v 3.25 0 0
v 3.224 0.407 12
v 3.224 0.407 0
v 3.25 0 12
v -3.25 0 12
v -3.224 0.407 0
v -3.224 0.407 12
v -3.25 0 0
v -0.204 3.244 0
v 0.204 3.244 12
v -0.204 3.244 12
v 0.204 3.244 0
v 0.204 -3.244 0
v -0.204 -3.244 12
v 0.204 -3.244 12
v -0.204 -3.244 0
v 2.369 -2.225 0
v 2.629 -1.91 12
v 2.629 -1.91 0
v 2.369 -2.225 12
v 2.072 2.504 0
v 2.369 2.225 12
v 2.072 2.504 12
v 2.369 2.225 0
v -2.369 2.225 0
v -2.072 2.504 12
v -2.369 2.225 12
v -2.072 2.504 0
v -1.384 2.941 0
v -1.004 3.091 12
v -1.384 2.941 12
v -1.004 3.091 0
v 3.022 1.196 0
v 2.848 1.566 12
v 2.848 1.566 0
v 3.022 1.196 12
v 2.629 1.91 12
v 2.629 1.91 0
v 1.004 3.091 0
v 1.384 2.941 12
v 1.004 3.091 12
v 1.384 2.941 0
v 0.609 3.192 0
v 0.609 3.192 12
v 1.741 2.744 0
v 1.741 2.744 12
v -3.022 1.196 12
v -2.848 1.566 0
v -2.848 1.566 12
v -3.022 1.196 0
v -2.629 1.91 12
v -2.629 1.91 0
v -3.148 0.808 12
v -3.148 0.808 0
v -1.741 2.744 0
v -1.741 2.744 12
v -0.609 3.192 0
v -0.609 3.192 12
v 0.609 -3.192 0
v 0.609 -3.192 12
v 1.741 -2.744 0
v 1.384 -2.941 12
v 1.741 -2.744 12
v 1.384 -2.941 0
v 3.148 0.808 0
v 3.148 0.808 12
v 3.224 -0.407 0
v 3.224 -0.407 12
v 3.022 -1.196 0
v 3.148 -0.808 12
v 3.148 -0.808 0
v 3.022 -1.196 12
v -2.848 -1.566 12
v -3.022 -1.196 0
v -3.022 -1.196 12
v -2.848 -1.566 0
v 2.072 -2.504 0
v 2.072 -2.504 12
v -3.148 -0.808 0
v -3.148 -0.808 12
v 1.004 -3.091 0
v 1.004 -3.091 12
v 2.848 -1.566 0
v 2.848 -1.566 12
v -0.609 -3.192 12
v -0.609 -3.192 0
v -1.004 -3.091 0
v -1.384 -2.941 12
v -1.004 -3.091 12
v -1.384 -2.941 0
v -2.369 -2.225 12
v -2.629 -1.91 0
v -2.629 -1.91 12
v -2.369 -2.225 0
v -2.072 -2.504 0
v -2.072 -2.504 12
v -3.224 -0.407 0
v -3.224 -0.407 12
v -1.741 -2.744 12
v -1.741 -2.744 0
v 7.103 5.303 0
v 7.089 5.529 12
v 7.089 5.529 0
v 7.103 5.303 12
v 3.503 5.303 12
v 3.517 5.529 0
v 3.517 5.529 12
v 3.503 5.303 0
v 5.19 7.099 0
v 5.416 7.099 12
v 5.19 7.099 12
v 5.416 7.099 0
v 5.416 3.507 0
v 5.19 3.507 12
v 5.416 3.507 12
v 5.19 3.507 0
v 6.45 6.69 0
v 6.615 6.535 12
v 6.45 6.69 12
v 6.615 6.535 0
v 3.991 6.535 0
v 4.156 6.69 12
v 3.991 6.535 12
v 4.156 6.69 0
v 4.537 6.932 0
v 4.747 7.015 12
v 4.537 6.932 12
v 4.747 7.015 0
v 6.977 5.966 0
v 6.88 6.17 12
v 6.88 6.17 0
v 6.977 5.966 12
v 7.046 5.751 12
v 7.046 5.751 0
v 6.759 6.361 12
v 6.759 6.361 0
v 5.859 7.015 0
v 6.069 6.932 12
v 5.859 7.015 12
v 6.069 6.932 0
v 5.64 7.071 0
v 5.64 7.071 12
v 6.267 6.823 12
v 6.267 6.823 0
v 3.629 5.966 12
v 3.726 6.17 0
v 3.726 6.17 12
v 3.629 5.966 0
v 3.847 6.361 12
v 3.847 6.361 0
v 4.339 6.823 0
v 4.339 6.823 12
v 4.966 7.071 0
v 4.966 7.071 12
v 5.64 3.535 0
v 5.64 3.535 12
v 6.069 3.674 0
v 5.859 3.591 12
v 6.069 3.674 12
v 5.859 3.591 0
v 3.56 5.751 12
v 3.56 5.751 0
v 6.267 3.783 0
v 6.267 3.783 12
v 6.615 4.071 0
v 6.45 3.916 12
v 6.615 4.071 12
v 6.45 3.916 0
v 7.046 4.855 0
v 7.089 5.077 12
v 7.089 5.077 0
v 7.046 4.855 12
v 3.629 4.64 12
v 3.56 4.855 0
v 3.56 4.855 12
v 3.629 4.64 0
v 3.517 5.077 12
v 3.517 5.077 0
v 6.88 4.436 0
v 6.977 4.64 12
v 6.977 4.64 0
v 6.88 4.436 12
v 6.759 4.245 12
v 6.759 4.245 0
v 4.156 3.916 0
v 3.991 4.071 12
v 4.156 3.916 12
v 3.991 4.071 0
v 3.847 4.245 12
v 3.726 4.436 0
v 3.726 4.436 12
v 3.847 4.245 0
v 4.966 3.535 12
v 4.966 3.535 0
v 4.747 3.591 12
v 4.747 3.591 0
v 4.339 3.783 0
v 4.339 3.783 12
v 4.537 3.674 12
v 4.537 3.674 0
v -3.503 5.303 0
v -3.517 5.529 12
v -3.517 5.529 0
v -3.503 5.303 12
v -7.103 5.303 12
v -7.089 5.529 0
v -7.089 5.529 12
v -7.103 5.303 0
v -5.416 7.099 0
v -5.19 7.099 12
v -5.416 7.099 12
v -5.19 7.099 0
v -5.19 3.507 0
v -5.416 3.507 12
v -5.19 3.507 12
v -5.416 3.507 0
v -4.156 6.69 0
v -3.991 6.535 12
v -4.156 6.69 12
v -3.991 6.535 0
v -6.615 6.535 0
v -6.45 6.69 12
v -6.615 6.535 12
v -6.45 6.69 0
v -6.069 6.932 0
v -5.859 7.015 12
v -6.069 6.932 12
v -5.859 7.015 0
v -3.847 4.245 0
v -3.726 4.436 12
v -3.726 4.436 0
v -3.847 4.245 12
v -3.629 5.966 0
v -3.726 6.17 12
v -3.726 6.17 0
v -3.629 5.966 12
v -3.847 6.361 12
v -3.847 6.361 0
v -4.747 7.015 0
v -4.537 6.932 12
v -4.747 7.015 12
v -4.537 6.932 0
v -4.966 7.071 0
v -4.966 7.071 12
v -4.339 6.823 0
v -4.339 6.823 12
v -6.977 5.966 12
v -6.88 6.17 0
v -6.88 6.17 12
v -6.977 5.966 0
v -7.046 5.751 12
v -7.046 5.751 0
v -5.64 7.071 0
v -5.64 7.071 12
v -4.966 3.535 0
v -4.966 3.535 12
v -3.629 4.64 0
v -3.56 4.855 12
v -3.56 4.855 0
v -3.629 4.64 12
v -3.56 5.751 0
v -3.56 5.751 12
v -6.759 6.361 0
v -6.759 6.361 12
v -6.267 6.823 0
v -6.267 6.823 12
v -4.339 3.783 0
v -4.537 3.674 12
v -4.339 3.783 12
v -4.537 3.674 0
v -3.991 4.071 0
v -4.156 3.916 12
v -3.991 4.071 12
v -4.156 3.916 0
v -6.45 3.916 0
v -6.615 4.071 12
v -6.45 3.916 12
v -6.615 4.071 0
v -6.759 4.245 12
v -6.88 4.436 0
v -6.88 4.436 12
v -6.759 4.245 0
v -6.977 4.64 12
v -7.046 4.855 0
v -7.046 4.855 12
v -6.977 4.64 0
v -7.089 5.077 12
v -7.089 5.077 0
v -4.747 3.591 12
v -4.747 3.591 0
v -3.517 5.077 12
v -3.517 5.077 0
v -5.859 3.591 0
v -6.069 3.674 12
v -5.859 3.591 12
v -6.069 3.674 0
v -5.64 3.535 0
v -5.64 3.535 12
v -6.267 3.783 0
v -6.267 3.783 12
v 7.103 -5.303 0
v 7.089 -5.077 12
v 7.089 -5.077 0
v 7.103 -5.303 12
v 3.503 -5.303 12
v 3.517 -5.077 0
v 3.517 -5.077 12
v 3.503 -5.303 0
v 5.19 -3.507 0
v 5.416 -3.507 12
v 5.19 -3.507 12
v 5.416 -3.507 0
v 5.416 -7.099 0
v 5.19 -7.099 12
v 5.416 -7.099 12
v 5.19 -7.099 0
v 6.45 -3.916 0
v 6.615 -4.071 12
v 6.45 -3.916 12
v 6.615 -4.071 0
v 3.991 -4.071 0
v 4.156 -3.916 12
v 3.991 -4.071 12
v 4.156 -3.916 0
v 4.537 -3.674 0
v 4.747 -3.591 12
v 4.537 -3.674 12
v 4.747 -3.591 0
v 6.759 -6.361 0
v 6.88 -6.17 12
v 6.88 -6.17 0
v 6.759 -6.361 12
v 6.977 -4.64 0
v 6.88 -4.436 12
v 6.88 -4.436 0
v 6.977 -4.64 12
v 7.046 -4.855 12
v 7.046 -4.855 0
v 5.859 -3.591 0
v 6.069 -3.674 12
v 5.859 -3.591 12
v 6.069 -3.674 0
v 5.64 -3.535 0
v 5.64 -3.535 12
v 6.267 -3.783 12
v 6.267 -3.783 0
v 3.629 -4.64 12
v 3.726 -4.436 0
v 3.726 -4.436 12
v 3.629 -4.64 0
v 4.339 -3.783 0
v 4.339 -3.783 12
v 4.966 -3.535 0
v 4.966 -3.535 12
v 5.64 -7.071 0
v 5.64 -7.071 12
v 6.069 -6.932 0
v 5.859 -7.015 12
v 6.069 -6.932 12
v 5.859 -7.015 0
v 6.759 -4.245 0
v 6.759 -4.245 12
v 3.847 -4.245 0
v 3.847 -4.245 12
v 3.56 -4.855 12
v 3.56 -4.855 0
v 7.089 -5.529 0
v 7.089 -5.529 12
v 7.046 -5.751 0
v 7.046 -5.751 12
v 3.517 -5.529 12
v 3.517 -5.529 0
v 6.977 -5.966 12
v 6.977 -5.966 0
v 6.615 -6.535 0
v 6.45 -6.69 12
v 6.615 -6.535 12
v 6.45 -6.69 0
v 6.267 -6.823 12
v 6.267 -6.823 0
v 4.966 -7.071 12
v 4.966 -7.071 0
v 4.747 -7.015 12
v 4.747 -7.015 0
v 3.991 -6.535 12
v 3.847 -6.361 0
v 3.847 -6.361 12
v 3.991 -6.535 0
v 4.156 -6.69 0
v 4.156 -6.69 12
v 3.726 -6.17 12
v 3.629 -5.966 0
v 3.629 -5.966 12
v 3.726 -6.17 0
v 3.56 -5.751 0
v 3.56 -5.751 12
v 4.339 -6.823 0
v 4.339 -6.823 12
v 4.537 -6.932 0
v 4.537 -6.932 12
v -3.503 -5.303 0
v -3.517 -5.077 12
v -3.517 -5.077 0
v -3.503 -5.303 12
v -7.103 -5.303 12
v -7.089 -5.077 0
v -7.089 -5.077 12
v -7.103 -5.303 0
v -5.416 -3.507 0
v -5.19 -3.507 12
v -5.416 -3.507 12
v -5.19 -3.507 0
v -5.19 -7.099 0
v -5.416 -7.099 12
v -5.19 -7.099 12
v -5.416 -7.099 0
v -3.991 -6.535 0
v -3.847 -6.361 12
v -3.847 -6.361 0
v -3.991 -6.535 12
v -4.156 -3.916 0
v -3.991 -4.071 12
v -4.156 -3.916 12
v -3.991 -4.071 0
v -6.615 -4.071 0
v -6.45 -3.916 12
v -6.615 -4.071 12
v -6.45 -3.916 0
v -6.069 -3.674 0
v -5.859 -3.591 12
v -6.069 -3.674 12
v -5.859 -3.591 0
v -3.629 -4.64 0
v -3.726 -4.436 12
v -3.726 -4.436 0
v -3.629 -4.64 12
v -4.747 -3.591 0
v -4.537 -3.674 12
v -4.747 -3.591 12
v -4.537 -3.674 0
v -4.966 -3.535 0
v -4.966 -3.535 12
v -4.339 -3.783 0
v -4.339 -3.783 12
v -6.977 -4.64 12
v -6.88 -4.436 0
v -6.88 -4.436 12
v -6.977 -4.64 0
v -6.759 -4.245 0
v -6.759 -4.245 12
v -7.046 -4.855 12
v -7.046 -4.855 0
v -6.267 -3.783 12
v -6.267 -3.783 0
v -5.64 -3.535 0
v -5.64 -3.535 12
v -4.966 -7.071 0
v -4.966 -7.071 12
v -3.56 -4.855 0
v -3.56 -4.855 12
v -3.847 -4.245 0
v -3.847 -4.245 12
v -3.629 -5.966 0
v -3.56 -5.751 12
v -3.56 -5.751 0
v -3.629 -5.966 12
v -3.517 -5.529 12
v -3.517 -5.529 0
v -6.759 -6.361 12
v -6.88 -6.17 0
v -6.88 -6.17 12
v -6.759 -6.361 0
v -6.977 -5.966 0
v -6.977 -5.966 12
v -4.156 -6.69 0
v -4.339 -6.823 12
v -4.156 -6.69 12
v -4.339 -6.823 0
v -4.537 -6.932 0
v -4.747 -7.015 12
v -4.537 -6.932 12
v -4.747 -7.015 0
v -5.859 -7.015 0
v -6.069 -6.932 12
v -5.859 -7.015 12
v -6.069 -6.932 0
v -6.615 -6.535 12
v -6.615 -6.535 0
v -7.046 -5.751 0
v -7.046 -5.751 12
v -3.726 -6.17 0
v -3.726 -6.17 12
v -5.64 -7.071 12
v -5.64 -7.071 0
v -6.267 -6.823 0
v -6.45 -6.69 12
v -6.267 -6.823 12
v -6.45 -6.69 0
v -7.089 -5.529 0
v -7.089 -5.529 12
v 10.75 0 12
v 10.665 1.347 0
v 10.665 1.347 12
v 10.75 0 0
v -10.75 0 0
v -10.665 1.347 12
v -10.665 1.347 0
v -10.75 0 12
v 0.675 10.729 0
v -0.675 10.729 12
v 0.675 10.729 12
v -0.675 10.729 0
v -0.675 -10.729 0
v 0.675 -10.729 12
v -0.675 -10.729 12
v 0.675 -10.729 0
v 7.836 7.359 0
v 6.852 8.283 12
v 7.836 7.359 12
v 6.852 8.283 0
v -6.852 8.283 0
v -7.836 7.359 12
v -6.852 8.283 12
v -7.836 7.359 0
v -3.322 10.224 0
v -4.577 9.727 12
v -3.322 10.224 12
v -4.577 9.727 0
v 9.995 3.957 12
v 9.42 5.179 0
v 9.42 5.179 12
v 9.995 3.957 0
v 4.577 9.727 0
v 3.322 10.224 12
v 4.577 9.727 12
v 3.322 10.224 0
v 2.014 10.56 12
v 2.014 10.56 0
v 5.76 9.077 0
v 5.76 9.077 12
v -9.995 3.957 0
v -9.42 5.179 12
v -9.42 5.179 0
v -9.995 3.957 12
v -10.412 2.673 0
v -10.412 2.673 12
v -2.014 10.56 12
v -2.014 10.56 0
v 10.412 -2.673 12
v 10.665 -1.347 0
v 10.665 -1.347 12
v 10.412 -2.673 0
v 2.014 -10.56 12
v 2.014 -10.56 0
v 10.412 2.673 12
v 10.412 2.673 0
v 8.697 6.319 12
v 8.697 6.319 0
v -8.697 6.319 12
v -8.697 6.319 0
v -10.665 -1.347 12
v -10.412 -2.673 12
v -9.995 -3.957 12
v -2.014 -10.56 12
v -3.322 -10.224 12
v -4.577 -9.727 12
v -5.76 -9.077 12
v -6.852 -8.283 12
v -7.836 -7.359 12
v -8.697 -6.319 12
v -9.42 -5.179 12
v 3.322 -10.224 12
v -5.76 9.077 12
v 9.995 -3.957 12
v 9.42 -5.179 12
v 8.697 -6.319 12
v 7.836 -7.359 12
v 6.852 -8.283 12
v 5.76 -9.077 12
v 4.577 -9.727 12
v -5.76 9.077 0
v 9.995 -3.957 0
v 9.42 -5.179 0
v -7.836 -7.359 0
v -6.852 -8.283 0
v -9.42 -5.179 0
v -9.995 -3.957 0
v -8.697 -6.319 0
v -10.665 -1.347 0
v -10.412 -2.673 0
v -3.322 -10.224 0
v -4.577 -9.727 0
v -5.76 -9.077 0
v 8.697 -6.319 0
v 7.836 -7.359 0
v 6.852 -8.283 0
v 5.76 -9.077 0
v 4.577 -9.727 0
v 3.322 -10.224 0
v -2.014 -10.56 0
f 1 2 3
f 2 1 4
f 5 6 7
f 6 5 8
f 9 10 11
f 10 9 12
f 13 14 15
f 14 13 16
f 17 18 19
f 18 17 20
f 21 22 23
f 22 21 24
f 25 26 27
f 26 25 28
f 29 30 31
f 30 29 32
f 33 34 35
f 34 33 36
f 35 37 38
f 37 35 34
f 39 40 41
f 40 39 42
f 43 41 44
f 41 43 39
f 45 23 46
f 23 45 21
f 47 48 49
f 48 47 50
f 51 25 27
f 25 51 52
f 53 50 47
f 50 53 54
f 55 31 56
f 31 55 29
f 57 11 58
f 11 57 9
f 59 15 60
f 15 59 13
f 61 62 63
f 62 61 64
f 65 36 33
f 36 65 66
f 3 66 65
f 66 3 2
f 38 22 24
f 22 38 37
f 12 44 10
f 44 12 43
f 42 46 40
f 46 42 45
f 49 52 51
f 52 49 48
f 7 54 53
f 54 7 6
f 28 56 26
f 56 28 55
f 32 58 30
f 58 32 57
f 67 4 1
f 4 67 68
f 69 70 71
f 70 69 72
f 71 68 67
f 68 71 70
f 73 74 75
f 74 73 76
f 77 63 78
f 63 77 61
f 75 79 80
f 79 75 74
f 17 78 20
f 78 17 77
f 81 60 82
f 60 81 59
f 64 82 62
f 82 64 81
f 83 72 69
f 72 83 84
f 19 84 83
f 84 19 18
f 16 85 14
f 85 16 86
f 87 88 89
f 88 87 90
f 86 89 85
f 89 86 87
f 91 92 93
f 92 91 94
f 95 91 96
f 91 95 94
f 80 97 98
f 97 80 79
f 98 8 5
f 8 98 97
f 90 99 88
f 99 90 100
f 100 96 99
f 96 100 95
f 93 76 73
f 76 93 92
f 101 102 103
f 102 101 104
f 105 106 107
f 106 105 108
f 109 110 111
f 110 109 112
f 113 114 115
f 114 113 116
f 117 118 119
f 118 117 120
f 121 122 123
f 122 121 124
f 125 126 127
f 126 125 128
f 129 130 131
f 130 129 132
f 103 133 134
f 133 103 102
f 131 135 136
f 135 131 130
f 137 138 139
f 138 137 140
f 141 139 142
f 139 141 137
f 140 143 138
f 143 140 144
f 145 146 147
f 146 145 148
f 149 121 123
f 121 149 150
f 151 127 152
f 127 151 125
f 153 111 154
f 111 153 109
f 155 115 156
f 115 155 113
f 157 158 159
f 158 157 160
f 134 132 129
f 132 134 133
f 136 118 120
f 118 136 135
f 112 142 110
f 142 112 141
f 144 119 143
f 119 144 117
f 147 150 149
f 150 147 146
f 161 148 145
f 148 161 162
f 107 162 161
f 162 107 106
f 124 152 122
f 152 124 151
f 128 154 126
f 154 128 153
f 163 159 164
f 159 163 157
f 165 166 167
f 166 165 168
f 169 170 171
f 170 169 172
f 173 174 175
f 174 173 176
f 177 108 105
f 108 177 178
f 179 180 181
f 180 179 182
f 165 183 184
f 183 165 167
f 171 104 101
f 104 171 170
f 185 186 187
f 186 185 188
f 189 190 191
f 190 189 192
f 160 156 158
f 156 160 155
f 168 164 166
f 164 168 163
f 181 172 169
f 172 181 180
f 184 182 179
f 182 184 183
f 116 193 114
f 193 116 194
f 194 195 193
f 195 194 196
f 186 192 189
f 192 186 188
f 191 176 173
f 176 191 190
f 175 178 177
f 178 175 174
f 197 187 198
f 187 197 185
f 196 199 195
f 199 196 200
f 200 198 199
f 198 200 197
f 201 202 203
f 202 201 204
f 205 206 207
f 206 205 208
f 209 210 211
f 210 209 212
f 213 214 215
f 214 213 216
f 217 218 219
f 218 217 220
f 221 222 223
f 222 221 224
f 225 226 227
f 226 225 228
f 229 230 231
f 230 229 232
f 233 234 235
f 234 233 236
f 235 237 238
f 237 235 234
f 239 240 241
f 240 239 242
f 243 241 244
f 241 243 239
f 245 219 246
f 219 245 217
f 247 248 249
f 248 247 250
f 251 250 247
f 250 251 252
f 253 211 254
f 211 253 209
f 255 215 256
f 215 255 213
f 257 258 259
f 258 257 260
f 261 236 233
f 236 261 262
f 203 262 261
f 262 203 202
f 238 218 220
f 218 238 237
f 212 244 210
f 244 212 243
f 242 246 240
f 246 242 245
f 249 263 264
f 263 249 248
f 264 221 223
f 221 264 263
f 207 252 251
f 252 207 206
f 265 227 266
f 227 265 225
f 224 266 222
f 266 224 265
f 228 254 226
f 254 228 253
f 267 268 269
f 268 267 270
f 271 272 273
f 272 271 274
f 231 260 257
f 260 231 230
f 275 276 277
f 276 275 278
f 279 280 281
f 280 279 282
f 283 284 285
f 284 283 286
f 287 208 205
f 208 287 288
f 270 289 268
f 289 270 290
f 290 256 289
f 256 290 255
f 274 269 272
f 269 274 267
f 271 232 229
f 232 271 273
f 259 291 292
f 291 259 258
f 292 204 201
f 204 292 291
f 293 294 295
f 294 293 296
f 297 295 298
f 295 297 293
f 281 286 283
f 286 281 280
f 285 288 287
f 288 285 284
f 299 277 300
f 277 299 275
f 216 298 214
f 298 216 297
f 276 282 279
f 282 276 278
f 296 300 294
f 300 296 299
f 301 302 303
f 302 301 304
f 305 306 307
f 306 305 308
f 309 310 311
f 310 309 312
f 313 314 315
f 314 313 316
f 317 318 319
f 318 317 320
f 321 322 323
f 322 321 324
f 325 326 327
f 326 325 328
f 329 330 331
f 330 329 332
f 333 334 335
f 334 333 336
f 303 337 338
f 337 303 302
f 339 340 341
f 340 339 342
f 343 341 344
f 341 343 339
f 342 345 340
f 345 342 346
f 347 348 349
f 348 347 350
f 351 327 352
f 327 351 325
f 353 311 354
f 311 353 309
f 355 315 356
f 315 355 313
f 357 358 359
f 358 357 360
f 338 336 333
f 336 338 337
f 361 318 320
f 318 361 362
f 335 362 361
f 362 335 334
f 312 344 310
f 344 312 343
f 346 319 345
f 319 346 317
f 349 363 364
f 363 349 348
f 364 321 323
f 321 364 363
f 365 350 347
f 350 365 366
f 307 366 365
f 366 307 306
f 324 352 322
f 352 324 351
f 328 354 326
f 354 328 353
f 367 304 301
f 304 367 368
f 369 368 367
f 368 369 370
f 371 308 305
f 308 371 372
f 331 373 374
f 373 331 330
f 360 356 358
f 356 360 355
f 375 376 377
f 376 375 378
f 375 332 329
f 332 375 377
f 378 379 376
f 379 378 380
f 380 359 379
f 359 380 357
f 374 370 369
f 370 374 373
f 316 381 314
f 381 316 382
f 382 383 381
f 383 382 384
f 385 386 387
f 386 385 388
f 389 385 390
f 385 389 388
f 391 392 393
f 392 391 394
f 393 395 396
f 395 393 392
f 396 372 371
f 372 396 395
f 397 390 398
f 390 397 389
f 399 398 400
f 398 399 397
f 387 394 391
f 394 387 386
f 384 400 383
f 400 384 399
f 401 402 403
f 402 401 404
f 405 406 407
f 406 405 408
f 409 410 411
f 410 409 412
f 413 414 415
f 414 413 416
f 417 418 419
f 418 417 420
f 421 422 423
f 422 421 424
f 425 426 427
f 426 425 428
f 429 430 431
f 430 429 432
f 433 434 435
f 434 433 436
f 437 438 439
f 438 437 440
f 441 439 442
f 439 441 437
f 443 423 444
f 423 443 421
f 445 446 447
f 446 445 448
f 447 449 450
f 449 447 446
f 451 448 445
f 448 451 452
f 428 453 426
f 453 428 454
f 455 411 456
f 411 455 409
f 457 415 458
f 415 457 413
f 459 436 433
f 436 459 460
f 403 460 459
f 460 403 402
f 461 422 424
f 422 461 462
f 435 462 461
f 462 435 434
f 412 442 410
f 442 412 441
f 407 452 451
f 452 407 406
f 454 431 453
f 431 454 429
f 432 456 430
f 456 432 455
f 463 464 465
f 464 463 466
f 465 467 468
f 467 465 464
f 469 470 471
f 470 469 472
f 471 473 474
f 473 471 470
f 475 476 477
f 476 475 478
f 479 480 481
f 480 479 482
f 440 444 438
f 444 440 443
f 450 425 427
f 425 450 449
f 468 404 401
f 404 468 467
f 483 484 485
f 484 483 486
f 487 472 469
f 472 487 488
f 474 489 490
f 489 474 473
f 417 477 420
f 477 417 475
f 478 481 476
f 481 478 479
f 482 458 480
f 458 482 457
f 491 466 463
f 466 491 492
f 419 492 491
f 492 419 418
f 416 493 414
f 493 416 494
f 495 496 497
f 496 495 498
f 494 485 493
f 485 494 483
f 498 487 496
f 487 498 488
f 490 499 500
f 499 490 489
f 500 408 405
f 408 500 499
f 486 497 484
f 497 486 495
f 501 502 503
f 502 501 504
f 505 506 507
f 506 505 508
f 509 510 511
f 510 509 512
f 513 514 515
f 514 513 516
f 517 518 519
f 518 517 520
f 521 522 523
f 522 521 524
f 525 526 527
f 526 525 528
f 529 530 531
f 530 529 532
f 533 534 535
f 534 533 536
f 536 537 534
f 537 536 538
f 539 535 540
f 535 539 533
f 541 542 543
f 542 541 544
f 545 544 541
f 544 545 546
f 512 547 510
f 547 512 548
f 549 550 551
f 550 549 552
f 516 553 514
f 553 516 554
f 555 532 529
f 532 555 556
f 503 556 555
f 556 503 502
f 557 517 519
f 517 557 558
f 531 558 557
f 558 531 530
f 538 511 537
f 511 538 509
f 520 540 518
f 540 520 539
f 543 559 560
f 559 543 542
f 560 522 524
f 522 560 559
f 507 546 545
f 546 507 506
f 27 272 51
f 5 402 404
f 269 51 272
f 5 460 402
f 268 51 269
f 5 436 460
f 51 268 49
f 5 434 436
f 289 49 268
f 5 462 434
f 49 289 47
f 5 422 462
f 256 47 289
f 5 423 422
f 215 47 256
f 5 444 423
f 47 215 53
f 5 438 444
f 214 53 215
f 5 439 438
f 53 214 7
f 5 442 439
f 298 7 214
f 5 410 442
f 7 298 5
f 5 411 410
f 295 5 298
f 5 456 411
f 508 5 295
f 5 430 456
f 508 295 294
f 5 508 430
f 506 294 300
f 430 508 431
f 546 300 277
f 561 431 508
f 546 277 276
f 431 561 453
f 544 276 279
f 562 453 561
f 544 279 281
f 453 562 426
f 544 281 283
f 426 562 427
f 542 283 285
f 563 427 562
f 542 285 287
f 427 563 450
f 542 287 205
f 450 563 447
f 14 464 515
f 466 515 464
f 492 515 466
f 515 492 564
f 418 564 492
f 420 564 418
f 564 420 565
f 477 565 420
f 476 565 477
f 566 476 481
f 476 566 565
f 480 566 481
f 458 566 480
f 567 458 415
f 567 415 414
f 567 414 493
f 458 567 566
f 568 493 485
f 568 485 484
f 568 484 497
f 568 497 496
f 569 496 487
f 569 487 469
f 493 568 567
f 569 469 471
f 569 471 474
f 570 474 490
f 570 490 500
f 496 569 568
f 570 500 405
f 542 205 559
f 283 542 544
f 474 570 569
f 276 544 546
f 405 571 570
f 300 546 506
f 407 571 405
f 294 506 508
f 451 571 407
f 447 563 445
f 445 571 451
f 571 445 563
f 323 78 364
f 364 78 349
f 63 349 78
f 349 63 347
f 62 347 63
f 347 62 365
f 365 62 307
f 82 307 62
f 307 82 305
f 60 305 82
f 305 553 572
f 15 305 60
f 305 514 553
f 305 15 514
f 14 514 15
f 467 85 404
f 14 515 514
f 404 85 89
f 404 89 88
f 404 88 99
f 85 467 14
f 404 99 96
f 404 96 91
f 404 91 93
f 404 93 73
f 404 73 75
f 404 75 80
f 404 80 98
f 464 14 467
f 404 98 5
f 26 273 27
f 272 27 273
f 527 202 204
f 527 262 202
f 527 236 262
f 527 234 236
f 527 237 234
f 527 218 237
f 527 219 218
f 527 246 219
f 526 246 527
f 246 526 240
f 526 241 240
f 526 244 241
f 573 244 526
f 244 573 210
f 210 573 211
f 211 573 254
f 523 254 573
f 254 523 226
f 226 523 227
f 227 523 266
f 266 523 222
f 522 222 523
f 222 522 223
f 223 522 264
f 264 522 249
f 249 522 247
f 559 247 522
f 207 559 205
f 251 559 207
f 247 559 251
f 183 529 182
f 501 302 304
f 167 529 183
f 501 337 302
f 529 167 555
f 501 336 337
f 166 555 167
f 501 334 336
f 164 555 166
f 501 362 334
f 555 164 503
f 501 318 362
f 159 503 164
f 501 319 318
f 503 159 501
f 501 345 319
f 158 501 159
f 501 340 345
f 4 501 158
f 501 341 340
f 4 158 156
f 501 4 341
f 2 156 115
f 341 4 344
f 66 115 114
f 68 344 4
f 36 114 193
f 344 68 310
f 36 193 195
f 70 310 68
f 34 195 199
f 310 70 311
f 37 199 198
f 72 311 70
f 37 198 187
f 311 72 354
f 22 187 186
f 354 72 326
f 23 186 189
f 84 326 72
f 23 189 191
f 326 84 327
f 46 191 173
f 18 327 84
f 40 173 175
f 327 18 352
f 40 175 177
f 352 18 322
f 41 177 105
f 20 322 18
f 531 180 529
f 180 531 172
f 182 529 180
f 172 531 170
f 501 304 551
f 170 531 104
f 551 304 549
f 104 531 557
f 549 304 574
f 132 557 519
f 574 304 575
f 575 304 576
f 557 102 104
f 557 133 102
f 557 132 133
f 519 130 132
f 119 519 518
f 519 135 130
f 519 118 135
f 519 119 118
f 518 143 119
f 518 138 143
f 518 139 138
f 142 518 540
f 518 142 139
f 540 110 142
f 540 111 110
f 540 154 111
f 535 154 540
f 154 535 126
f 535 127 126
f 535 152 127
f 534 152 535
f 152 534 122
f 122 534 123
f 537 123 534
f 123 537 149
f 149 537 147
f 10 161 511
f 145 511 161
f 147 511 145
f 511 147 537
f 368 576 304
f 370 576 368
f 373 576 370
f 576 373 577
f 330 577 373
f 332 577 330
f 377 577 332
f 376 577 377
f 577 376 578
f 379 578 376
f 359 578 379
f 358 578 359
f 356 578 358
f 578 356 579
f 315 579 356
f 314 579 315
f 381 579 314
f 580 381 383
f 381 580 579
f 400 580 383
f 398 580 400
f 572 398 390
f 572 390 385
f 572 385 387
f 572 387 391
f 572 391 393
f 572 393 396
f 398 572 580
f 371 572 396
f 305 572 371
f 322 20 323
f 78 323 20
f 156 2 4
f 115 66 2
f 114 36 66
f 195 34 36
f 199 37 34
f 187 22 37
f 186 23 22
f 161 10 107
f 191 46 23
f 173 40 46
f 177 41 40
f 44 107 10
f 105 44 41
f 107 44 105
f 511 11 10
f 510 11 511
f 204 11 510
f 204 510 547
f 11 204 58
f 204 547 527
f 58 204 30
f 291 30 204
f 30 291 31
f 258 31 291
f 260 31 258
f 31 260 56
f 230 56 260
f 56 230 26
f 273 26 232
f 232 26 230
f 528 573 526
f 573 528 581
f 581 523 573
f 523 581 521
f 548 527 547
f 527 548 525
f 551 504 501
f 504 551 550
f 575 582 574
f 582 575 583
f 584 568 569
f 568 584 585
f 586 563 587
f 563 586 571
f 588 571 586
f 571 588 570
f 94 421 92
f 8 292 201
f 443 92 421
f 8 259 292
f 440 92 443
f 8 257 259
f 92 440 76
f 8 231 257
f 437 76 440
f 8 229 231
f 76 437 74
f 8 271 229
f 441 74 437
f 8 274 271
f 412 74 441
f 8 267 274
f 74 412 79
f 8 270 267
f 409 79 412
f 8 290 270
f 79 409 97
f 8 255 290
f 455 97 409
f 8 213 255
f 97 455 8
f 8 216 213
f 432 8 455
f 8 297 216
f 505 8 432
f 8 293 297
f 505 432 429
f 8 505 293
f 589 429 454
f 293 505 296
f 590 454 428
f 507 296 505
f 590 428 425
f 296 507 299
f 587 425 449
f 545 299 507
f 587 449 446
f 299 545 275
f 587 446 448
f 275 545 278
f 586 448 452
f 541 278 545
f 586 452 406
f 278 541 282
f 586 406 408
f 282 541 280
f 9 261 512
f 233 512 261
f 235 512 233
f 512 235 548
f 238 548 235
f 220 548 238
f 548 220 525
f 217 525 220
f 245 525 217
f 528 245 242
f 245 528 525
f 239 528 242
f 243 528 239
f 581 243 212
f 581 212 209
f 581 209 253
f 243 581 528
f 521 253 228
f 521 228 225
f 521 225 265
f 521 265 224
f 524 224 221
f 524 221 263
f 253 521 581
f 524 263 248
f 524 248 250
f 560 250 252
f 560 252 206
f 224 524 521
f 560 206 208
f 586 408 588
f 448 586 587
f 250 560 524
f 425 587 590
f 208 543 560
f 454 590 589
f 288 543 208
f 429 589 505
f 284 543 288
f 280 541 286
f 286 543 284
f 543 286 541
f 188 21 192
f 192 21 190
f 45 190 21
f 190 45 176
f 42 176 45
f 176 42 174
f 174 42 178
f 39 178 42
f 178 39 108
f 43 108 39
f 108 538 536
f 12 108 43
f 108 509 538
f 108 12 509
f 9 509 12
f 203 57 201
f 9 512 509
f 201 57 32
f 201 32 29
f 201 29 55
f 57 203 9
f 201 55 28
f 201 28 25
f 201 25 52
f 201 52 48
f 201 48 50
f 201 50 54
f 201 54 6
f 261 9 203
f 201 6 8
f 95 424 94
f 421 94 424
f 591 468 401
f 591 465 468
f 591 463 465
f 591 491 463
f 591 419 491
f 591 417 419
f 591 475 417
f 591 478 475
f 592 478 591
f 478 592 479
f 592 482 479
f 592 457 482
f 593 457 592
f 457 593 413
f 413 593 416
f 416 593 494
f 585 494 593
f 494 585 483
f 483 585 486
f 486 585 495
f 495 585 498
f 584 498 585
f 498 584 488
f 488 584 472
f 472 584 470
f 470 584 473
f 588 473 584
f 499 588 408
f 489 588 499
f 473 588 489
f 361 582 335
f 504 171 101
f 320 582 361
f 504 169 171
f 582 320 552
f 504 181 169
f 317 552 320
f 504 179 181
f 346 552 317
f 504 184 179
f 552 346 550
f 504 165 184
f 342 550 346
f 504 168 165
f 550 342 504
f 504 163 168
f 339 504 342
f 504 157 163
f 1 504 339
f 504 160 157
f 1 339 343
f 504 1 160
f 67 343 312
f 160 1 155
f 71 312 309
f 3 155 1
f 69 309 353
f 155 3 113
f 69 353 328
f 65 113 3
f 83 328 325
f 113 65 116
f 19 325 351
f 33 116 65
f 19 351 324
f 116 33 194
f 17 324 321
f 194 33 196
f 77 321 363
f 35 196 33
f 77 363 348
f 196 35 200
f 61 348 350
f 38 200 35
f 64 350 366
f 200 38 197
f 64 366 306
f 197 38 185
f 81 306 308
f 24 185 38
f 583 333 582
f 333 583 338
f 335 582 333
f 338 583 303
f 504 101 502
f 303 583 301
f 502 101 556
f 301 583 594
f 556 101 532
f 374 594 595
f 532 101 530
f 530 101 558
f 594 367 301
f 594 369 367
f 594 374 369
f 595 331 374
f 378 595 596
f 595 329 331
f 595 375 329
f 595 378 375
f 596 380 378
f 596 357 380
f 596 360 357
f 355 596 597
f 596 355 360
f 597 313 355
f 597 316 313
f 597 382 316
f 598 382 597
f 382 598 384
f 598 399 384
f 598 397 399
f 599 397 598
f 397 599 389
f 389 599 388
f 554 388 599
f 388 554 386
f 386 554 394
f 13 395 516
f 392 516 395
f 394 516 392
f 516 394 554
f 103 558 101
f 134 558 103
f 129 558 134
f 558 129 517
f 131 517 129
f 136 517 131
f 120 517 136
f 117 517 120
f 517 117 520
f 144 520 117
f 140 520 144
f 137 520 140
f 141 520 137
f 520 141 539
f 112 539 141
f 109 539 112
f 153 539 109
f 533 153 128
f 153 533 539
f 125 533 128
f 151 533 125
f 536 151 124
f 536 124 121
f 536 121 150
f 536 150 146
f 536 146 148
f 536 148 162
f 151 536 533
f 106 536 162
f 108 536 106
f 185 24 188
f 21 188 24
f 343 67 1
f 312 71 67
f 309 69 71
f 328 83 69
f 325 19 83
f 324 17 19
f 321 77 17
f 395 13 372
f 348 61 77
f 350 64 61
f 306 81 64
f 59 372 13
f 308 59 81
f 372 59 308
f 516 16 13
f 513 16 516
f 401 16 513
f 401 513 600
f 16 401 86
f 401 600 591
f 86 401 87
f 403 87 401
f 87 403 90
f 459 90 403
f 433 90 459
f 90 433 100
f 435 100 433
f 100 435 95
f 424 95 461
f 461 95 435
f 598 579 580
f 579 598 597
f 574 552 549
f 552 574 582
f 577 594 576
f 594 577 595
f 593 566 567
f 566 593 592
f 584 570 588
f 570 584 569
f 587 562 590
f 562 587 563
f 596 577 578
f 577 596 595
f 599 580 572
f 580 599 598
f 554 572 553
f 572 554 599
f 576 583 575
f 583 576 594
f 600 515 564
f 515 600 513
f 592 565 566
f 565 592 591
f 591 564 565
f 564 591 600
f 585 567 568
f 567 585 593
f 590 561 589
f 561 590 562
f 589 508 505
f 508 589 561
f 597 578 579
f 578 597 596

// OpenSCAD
$fn = 50;


difference() {
	union() {
		*color(alpha = 1.0000000000, c = "gray") {
			translate(v = [0, 7, 0]) {
				linear_extrude(height = 1) {
					text(font = "Arial:style=Bold", halign = "center", size = 4.5000000000, text = "COMMENT circle main", valign = "center");
				}
			}
		}
		cylinder(h = 12, r = 10.7500000000);
	}
	union() {
		*color(alpha = 1.0000000000, c = "gray") {
			translate(v = [0, 7, 0]) {
				linear_extrude(height = 1) {
					text(font = "Arial:style=Bold", halign = "center", size = 4.5000000000, text = "COMMENT holes main", valign = "center");
				}
			}
		}
		translate(v = [0.0000000000, 0.0000000000, -50.0000000000]) {
			cylinder(h = 100, r = 3.2500000000);
		}
		translate(v = [0.0000000000, 0.0000000000, -50.0000000000]) {
			cylinder(h = 100, r = 3.2500000000);
		}
		translate(v = [0.0000000000, 0.0000000000, -50.0000000000]) {
			cylinder(h = 100, r = 3.2500000000);
		}
		translate(v = [0.0000000000, 0.0000000000, -50.0000000000]) {
			cylinder(h = 100, r = 1.8000000000);
		}
		translate(v = [0.0000000000, 0.0000000000, -50.0000000000]) {
			cylinder(h = 100, r = 1.8000000000);
		}
		translate(v = [0.0000000000, 0.0000000000, -50.0000000000]) {
			cylinder(h = 100, r = 1.8000000000);
		}
		#translate(v = [5.3030000000, 5.3030000000, -50.0000000000]) {
			cylinder(h = 100, r = 1.8000000000);
		}
		#translate(v = [-5.3030000000, 5.3030000000, -50.0000000000]) {
			cylinder(h = 100, r = 1.8000000000);
		}
		#translate(v = [5.3030000000, -5.3030000000, -50.0000000000]) {
			cylinder(h = 100, r = 1.8000000000);
		}
		#translate(v = [-5.3030000000, -5.3030000000, -50.0000000000]) {
			cylinder(h = 100, r = 1.8000000000);
		}
	}
}
